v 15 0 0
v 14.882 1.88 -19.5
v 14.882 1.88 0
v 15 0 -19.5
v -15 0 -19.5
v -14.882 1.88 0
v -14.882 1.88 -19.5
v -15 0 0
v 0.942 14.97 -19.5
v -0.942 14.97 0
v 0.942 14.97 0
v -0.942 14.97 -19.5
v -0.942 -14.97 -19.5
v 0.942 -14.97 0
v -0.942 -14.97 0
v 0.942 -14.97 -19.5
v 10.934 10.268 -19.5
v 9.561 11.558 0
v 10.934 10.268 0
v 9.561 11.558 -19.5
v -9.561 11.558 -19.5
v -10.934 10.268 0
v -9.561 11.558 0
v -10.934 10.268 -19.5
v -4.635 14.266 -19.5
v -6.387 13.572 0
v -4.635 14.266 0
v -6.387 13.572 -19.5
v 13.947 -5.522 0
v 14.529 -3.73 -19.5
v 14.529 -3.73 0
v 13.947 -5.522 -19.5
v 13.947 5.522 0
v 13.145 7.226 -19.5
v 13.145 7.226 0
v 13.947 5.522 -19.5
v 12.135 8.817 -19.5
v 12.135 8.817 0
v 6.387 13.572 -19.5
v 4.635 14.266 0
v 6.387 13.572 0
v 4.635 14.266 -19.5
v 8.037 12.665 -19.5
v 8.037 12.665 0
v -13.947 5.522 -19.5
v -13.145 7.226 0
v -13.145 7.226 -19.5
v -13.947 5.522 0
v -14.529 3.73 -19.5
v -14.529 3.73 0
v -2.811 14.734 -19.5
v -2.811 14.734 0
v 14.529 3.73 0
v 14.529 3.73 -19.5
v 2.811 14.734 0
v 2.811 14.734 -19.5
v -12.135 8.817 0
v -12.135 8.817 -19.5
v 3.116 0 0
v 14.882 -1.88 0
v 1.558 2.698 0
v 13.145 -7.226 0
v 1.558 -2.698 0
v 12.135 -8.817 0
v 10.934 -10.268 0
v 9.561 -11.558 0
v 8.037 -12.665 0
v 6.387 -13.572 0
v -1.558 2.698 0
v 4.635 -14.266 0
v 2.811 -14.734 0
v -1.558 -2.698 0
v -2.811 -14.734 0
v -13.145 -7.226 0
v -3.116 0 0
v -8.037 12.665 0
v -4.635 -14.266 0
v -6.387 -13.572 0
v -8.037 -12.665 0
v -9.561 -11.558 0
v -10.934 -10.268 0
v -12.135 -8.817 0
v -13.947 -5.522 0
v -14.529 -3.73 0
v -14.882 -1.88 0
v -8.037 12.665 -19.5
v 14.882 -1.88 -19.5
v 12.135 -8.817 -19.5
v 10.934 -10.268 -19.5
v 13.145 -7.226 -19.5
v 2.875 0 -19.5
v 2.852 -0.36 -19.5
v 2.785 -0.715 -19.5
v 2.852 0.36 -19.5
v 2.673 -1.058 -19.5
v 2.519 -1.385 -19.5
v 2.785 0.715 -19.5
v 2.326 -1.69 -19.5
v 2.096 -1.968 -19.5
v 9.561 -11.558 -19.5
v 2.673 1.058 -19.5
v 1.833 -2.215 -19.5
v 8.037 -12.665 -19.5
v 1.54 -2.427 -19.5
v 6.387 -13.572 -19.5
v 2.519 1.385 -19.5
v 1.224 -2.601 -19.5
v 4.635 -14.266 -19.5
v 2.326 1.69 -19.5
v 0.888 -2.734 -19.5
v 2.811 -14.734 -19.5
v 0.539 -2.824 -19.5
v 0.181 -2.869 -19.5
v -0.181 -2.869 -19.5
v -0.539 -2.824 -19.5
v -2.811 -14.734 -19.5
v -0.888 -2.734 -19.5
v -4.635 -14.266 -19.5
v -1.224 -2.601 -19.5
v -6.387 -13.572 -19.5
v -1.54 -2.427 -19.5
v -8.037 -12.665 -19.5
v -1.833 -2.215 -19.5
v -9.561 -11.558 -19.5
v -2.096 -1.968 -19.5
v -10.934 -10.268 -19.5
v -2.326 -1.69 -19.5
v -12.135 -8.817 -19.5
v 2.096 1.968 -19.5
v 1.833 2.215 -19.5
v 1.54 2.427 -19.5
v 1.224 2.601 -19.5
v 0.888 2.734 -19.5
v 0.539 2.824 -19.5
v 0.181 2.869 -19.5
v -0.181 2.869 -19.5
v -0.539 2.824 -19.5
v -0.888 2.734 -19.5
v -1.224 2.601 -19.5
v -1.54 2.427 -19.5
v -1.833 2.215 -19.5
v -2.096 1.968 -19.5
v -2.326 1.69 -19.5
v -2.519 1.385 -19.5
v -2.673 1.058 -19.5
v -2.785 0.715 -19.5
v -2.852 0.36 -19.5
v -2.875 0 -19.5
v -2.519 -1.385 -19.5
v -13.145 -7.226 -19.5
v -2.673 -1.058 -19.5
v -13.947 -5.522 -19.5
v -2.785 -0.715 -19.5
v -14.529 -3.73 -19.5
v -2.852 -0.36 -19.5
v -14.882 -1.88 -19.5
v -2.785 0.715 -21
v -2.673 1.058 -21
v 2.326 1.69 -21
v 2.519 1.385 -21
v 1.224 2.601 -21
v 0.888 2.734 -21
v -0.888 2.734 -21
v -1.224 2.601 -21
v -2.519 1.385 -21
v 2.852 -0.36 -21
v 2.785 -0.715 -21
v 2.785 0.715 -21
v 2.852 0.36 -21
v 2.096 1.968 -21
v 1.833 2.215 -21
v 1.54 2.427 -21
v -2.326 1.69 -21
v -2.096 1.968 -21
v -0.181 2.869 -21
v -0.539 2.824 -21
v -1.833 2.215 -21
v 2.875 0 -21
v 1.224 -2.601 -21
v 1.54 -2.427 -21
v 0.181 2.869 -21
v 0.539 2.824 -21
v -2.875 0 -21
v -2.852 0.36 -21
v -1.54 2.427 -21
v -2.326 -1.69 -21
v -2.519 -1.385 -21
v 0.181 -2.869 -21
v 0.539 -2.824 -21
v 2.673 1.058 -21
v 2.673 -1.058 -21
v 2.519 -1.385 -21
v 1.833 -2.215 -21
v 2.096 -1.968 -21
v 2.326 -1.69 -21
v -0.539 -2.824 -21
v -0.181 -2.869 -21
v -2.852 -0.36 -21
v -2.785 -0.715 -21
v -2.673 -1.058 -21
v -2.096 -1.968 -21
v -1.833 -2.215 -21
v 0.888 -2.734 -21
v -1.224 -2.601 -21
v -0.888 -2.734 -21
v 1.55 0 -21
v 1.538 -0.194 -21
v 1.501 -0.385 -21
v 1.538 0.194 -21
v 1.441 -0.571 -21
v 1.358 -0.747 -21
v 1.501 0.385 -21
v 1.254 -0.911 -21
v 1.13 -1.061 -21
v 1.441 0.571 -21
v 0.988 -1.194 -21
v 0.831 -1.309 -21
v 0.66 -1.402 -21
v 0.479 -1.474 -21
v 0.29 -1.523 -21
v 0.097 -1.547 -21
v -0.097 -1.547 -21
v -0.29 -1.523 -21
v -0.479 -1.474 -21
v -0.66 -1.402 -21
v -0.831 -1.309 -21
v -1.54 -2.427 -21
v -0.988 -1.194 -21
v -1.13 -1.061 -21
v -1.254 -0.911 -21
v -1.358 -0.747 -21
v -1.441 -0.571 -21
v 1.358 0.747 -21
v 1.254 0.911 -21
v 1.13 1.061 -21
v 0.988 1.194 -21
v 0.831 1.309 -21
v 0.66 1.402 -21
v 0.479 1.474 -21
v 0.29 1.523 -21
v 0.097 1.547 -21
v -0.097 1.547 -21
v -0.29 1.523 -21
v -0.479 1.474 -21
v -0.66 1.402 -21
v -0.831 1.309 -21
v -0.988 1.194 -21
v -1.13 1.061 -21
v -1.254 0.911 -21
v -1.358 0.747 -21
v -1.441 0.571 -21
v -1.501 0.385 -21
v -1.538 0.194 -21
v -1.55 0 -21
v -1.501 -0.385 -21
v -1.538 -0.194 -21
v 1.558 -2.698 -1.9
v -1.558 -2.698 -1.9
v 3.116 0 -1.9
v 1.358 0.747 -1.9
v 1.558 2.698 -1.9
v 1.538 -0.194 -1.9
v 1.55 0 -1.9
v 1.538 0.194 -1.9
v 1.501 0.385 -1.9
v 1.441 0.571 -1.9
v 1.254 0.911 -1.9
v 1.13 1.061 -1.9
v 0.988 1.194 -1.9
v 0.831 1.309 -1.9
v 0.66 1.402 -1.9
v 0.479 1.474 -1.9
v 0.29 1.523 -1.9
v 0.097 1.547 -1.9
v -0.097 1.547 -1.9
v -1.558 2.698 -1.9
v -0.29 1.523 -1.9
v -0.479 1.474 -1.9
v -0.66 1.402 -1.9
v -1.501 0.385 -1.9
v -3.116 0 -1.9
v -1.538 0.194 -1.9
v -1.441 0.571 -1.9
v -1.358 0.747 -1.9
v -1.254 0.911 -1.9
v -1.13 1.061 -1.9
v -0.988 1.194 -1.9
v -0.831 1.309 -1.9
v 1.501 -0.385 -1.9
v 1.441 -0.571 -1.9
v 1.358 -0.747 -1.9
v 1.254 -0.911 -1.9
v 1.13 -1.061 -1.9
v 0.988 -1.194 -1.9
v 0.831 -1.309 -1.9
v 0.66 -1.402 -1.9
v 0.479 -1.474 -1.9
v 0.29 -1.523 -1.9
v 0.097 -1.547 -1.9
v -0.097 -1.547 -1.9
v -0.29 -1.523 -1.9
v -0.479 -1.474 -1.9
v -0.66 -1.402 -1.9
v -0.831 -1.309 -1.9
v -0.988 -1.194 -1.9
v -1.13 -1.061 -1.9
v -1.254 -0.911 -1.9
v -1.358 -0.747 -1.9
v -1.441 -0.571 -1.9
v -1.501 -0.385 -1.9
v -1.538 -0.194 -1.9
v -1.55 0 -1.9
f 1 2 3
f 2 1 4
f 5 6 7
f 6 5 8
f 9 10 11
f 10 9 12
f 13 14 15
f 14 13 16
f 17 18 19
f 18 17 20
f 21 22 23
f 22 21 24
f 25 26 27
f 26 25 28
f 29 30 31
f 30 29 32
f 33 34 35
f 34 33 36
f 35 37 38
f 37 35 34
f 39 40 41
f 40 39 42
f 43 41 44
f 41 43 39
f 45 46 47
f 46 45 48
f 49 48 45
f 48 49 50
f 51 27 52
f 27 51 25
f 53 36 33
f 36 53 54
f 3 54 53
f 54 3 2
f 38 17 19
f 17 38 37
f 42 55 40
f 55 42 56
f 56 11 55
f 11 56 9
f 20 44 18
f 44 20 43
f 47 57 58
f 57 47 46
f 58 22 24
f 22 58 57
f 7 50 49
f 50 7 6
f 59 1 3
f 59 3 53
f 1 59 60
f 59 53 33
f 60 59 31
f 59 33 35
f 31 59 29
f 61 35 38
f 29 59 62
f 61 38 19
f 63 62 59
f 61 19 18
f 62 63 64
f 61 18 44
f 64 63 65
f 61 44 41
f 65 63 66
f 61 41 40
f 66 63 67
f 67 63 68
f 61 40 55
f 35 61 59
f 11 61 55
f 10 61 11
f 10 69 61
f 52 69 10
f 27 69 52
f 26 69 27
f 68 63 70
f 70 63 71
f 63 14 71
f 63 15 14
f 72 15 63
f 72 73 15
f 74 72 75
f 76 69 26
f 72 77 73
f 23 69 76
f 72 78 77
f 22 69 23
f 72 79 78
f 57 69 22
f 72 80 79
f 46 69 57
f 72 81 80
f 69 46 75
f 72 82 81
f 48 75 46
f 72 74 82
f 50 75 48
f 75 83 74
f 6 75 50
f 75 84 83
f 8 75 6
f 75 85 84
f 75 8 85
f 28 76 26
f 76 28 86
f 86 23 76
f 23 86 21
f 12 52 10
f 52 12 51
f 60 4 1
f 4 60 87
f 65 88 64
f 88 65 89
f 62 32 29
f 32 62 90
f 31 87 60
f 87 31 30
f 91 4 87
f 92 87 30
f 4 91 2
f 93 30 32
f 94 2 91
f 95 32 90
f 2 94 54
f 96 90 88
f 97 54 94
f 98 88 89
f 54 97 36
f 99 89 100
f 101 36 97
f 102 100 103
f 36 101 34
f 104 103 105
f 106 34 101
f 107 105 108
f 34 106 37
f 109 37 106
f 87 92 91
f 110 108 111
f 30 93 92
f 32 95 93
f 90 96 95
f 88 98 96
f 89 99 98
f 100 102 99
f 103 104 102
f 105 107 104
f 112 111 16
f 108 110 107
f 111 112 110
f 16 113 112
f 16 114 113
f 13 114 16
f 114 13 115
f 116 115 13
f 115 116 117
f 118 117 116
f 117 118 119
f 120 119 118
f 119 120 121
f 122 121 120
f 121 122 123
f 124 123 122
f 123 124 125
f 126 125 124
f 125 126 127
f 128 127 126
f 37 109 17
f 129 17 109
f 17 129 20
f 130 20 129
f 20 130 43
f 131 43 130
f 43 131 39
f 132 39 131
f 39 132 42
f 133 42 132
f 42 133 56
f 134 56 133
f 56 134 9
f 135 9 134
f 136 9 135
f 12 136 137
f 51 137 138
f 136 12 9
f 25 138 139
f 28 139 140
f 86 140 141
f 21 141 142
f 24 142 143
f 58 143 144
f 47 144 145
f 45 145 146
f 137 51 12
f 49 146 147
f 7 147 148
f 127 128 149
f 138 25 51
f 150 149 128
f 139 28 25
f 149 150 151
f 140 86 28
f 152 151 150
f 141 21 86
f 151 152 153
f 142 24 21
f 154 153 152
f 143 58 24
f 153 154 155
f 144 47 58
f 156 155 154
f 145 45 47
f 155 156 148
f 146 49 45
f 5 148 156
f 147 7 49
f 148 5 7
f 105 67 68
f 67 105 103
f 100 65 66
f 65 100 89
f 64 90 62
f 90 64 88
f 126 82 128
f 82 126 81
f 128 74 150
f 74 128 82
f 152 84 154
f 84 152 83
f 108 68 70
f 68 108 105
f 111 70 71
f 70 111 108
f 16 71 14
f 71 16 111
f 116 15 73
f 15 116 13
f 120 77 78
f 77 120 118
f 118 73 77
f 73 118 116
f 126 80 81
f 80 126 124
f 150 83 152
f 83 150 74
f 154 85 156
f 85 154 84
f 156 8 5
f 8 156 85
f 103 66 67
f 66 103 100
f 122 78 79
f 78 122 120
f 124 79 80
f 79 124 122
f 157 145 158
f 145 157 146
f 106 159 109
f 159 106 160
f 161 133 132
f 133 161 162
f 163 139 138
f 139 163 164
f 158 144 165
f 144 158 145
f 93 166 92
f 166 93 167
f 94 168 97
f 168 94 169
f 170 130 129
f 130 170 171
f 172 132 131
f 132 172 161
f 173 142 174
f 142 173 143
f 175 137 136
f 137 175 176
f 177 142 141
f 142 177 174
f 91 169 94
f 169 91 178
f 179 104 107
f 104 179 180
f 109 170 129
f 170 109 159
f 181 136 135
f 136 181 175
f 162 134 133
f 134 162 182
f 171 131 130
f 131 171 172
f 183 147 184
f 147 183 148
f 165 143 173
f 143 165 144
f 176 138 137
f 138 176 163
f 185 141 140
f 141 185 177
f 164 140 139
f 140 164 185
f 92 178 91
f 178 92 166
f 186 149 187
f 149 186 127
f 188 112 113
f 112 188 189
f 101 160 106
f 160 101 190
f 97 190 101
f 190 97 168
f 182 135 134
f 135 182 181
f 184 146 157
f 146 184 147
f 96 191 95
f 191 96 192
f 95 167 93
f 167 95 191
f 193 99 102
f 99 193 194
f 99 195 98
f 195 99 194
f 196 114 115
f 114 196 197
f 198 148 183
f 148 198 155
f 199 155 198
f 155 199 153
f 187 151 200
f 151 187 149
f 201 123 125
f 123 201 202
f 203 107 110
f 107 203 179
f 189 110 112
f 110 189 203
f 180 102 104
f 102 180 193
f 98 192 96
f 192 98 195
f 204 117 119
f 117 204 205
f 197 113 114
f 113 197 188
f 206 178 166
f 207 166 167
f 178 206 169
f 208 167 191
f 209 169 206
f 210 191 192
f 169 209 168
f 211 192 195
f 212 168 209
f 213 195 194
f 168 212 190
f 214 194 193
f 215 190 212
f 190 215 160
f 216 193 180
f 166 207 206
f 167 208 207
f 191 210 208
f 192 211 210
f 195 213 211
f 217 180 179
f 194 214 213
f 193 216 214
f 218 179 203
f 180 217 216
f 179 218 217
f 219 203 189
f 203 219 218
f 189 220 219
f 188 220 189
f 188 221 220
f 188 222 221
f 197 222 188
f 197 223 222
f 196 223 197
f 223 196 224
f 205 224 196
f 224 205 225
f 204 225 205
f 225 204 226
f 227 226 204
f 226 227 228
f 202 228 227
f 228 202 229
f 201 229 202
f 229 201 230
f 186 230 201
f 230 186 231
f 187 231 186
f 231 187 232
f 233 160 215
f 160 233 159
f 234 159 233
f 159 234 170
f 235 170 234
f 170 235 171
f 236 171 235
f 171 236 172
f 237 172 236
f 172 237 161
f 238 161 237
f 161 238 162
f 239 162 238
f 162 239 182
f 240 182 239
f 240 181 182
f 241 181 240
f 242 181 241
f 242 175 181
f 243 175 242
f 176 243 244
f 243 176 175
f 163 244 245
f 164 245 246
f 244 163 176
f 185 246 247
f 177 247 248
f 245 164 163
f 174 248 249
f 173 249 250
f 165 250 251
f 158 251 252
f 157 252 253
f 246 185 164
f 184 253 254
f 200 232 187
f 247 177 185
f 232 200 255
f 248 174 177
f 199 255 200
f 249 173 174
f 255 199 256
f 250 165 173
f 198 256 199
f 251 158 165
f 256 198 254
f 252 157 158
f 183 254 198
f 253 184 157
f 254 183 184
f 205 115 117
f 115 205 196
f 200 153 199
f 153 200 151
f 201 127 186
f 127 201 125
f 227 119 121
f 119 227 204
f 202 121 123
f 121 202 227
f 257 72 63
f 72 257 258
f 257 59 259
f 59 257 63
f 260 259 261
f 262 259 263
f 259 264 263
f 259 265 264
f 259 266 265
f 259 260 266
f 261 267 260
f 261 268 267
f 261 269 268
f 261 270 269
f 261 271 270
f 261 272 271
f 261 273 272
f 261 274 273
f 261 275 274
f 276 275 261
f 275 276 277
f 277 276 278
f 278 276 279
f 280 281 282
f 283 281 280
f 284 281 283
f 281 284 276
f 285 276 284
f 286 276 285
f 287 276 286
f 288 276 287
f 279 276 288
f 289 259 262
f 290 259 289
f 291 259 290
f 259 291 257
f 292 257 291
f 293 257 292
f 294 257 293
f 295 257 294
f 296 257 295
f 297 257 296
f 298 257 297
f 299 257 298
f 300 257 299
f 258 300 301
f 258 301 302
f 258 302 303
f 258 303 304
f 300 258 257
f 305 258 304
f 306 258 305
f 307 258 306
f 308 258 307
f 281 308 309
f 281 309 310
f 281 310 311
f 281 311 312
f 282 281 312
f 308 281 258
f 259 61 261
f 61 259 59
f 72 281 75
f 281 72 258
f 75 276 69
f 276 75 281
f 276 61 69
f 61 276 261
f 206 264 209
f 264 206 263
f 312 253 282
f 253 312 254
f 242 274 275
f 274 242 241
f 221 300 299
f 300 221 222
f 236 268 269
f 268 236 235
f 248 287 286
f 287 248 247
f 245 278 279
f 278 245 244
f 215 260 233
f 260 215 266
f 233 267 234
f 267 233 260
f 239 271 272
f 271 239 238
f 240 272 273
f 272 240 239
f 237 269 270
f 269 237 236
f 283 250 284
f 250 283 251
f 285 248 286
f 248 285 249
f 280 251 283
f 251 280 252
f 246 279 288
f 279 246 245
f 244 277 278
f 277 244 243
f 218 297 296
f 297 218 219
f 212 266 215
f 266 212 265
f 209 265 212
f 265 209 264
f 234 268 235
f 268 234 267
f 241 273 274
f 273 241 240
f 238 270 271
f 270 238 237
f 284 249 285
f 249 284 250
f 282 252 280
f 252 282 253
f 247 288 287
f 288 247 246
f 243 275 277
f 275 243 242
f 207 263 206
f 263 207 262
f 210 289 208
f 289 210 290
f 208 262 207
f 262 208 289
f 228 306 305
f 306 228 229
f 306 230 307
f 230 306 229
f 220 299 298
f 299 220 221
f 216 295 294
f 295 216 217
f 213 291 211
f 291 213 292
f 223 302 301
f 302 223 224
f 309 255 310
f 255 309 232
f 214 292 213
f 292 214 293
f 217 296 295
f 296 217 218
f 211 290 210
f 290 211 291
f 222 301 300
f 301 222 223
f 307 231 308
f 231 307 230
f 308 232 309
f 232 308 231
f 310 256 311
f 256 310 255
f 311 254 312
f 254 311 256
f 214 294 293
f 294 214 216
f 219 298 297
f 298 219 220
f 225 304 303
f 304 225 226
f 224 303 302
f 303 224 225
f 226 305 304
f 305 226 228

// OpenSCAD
$fn = 50;


difference() {
	union() {
		translate(v = [0, 0, -19.5000000000]) {
			cylinder(h = 19.5000000000, r = 15.0000000000);
		}
		#translate(v = [0, 0, -21.0000000000]) {
			cylinder(h = 21, r = 2.8750000000);
		}
	}
	union() {
		translate(v = [0, 0, 0]) {
			rotate(a = [0, 0, 0]) {
				difference() {
					union() {
						translate(v = [0, 0, -1.9000000000]) {
							linear_extrude(height = 1.9000000000) {
								polygon(points = [[3.1158000000, 0.0000000000], [1.5579000000, 2.6983619531], [-1.5579000000, 2.6983619531], [-3.1158000000, 0.0000000000], [-1.5579000000, -2.6983619531], [1.5579000000, -2.6983619531]]);
							}
						}
					}
					union();
				}
			}
		}
		#translate(v = [0, 0, -100.0000000000]) {
			cylinder(h = 200, r = 1.5500000000);
		}
	}
}
